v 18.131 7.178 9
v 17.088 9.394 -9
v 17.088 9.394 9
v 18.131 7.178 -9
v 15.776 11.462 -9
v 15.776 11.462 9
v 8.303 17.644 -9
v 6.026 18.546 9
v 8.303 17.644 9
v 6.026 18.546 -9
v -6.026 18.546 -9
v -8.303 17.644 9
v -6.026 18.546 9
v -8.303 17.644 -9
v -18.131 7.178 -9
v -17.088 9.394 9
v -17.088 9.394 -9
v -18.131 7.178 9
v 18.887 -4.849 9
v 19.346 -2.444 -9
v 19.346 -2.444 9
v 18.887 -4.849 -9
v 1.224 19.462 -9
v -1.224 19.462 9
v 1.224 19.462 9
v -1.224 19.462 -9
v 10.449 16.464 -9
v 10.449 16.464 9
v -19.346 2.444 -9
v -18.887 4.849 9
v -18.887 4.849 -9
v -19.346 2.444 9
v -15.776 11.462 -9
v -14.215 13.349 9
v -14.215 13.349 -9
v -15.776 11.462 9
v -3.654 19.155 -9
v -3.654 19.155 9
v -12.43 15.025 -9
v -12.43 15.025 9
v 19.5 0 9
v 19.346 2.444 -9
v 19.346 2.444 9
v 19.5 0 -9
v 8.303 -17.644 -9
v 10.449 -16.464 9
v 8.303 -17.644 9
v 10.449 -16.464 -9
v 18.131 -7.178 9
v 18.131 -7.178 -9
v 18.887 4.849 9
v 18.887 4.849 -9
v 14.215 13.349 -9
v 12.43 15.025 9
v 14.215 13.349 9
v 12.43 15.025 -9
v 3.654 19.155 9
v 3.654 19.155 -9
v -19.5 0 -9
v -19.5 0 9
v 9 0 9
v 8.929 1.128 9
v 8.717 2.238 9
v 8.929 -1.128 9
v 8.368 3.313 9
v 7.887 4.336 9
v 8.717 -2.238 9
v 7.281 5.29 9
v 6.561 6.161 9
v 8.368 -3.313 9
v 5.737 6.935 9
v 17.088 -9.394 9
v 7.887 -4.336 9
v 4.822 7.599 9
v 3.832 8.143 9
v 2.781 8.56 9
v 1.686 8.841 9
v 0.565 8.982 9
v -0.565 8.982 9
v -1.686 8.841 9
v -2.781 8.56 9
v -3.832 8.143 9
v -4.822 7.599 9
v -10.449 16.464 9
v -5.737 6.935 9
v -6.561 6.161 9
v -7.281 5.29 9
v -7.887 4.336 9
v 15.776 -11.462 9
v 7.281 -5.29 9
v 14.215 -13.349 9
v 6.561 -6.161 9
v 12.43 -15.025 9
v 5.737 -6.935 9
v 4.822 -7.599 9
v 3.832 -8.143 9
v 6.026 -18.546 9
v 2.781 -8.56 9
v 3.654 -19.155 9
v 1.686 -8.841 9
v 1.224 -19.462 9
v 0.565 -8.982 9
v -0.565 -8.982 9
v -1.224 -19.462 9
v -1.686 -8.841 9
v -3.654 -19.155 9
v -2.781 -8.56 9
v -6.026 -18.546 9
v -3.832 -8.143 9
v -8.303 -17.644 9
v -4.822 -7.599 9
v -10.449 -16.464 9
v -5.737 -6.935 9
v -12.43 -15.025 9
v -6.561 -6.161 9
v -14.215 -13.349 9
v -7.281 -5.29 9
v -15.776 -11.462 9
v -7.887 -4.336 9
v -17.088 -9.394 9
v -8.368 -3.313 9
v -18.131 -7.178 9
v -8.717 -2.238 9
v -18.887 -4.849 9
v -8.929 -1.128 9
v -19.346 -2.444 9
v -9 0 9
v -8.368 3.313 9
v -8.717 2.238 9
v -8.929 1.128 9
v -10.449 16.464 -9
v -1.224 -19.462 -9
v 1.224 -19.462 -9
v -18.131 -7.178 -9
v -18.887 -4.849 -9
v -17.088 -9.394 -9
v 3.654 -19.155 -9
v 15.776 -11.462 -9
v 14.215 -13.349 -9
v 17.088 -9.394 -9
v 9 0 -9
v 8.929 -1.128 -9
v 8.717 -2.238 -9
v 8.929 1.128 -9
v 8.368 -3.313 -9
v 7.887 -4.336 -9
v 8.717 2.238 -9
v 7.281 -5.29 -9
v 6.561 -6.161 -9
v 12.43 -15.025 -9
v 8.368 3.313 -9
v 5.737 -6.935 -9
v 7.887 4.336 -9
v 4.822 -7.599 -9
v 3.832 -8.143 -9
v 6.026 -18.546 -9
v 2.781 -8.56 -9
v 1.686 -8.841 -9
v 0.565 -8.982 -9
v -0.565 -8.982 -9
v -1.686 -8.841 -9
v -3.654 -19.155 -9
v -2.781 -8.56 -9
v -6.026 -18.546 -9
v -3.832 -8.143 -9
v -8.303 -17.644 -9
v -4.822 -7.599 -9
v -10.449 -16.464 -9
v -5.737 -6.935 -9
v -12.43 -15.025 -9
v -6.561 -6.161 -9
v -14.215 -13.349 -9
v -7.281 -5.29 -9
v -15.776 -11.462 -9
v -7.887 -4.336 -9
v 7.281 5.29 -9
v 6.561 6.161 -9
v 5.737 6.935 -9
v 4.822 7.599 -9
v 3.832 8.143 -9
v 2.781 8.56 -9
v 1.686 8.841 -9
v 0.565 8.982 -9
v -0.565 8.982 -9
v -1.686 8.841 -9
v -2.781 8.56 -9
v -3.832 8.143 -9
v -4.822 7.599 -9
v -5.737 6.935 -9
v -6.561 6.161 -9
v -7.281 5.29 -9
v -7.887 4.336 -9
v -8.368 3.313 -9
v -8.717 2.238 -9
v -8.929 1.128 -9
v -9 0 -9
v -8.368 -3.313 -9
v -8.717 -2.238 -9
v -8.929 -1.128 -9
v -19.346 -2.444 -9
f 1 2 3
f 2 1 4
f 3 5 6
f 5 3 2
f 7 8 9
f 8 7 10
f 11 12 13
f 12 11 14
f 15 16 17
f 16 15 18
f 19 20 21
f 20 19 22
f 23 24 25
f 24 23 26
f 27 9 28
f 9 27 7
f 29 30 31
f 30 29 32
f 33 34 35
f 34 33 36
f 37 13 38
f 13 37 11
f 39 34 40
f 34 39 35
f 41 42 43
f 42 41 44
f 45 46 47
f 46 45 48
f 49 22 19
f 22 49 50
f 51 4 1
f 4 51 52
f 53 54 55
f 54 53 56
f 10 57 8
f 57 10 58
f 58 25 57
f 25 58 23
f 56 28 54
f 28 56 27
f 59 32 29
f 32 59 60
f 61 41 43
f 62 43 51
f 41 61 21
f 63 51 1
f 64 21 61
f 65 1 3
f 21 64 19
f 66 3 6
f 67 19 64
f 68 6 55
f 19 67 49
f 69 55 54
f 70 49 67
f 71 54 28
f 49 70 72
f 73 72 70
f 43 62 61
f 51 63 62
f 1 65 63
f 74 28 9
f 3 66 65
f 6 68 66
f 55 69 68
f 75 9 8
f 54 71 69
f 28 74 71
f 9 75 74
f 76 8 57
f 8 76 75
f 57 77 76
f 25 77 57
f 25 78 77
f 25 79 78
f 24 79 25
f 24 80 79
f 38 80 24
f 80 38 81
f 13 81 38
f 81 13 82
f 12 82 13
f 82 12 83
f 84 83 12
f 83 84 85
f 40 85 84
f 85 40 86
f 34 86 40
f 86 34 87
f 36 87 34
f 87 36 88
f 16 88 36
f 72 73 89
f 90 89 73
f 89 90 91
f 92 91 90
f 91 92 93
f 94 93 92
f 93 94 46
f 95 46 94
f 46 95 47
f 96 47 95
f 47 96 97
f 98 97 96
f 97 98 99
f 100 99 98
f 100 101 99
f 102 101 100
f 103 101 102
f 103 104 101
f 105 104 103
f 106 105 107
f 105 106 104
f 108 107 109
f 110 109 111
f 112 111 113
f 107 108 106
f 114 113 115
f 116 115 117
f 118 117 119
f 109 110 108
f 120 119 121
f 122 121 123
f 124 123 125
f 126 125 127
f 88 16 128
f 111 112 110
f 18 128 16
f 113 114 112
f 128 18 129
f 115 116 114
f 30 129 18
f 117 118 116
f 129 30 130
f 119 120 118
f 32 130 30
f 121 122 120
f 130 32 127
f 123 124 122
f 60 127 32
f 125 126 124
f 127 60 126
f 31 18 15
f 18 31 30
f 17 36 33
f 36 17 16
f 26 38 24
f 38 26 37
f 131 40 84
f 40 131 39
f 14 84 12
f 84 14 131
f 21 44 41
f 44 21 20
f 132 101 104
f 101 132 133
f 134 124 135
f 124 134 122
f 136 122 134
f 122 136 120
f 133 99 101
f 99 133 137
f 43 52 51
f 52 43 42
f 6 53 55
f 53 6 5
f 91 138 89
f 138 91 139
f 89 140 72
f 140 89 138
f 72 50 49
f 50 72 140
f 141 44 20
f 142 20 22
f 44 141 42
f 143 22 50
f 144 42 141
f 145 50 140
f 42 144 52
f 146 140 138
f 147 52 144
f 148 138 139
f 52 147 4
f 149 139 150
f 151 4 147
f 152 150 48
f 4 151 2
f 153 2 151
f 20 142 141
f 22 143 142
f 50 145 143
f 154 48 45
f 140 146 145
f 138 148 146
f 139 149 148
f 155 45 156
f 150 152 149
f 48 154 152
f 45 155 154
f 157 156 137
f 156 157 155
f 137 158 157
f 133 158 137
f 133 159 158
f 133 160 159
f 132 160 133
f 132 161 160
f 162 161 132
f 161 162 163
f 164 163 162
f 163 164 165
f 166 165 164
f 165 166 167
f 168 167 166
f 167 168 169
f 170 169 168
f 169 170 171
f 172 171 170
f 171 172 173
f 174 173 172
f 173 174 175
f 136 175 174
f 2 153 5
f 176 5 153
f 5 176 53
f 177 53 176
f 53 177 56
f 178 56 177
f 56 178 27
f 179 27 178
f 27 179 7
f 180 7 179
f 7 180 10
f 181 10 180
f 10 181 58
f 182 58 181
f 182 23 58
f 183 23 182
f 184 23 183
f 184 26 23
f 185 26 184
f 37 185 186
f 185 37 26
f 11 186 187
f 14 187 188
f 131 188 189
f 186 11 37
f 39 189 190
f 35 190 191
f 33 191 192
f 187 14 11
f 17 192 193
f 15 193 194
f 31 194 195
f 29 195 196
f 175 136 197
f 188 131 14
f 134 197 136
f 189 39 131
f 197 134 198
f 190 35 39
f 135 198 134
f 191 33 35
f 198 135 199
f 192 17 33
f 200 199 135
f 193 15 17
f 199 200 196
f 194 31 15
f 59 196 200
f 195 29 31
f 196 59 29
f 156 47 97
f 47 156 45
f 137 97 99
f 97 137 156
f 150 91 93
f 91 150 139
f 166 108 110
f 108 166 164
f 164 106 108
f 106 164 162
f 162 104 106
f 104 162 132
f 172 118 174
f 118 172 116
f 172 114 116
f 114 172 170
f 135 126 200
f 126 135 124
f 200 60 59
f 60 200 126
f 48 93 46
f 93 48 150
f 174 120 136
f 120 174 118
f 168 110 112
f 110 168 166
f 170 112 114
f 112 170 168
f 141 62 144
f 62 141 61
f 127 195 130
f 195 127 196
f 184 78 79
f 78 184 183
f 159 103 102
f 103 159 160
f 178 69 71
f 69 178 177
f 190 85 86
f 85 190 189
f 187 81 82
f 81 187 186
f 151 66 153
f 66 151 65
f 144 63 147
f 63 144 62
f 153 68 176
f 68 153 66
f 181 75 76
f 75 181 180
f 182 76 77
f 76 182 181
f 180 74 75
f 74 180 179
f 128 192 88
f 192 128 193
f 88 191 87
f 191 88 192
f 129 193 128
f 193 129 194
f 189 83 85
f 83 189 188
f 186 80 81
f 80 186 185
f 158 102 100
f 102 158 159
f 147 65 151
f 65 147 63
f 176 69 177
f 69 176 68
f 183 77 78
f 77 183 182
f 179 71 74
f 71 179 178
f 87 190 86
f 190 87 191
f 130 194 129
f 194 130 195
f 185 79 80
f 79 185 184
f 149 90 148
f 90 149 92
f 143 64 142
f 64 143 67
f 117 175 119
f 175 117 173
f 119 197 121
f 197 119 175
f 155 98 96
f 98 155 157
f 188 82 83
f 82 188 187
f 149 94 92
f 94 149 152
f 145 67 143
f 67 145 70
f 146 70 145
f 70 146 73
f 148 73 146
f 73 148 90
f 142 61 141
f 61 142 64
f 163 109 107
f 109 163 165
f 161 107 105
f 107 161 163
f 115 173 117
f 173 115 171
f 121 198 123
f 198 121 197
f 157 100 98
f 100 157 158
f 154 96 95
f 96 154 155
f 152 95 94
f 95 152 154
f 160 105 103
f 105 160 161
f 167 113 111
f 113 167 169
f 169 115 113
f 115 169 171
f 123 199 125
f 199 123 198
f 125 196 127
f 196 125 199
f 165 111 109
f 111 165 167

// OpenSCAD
$fn = 50;


difference() {
	union() {
		translate(v = [0, 0, -9.0000000000]) {
			cylinder(h = 18, r = 19.5000000000);
		}
	}
	union() {
		translate(v = [0, 0, -100.0000000000]) {
			cylinder(h = 200, r = 9);
		}
	}
}
